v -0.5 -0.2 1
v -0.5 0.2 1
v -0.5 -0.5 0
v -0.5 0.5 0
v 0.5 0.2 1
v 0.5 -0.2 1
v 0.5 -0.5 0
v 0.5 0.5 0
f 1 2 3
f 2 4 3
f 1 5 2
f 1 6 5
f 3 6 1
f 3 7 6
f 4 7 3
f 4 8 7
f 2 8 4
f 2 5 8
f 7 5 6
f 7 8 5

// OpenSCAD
// Trapezium Prism (Isosceles) for Basic Shapes
// by Slashee the Cow

points = [
    [0,0],
    [0.3,1],
    [0.7,1],
    [1,0]
    ];

translate([-0.5,-0.5,0])
rotate([90,0,90])
linear_extrude(1)
polygon(points, [[0,1,2,3]]);
